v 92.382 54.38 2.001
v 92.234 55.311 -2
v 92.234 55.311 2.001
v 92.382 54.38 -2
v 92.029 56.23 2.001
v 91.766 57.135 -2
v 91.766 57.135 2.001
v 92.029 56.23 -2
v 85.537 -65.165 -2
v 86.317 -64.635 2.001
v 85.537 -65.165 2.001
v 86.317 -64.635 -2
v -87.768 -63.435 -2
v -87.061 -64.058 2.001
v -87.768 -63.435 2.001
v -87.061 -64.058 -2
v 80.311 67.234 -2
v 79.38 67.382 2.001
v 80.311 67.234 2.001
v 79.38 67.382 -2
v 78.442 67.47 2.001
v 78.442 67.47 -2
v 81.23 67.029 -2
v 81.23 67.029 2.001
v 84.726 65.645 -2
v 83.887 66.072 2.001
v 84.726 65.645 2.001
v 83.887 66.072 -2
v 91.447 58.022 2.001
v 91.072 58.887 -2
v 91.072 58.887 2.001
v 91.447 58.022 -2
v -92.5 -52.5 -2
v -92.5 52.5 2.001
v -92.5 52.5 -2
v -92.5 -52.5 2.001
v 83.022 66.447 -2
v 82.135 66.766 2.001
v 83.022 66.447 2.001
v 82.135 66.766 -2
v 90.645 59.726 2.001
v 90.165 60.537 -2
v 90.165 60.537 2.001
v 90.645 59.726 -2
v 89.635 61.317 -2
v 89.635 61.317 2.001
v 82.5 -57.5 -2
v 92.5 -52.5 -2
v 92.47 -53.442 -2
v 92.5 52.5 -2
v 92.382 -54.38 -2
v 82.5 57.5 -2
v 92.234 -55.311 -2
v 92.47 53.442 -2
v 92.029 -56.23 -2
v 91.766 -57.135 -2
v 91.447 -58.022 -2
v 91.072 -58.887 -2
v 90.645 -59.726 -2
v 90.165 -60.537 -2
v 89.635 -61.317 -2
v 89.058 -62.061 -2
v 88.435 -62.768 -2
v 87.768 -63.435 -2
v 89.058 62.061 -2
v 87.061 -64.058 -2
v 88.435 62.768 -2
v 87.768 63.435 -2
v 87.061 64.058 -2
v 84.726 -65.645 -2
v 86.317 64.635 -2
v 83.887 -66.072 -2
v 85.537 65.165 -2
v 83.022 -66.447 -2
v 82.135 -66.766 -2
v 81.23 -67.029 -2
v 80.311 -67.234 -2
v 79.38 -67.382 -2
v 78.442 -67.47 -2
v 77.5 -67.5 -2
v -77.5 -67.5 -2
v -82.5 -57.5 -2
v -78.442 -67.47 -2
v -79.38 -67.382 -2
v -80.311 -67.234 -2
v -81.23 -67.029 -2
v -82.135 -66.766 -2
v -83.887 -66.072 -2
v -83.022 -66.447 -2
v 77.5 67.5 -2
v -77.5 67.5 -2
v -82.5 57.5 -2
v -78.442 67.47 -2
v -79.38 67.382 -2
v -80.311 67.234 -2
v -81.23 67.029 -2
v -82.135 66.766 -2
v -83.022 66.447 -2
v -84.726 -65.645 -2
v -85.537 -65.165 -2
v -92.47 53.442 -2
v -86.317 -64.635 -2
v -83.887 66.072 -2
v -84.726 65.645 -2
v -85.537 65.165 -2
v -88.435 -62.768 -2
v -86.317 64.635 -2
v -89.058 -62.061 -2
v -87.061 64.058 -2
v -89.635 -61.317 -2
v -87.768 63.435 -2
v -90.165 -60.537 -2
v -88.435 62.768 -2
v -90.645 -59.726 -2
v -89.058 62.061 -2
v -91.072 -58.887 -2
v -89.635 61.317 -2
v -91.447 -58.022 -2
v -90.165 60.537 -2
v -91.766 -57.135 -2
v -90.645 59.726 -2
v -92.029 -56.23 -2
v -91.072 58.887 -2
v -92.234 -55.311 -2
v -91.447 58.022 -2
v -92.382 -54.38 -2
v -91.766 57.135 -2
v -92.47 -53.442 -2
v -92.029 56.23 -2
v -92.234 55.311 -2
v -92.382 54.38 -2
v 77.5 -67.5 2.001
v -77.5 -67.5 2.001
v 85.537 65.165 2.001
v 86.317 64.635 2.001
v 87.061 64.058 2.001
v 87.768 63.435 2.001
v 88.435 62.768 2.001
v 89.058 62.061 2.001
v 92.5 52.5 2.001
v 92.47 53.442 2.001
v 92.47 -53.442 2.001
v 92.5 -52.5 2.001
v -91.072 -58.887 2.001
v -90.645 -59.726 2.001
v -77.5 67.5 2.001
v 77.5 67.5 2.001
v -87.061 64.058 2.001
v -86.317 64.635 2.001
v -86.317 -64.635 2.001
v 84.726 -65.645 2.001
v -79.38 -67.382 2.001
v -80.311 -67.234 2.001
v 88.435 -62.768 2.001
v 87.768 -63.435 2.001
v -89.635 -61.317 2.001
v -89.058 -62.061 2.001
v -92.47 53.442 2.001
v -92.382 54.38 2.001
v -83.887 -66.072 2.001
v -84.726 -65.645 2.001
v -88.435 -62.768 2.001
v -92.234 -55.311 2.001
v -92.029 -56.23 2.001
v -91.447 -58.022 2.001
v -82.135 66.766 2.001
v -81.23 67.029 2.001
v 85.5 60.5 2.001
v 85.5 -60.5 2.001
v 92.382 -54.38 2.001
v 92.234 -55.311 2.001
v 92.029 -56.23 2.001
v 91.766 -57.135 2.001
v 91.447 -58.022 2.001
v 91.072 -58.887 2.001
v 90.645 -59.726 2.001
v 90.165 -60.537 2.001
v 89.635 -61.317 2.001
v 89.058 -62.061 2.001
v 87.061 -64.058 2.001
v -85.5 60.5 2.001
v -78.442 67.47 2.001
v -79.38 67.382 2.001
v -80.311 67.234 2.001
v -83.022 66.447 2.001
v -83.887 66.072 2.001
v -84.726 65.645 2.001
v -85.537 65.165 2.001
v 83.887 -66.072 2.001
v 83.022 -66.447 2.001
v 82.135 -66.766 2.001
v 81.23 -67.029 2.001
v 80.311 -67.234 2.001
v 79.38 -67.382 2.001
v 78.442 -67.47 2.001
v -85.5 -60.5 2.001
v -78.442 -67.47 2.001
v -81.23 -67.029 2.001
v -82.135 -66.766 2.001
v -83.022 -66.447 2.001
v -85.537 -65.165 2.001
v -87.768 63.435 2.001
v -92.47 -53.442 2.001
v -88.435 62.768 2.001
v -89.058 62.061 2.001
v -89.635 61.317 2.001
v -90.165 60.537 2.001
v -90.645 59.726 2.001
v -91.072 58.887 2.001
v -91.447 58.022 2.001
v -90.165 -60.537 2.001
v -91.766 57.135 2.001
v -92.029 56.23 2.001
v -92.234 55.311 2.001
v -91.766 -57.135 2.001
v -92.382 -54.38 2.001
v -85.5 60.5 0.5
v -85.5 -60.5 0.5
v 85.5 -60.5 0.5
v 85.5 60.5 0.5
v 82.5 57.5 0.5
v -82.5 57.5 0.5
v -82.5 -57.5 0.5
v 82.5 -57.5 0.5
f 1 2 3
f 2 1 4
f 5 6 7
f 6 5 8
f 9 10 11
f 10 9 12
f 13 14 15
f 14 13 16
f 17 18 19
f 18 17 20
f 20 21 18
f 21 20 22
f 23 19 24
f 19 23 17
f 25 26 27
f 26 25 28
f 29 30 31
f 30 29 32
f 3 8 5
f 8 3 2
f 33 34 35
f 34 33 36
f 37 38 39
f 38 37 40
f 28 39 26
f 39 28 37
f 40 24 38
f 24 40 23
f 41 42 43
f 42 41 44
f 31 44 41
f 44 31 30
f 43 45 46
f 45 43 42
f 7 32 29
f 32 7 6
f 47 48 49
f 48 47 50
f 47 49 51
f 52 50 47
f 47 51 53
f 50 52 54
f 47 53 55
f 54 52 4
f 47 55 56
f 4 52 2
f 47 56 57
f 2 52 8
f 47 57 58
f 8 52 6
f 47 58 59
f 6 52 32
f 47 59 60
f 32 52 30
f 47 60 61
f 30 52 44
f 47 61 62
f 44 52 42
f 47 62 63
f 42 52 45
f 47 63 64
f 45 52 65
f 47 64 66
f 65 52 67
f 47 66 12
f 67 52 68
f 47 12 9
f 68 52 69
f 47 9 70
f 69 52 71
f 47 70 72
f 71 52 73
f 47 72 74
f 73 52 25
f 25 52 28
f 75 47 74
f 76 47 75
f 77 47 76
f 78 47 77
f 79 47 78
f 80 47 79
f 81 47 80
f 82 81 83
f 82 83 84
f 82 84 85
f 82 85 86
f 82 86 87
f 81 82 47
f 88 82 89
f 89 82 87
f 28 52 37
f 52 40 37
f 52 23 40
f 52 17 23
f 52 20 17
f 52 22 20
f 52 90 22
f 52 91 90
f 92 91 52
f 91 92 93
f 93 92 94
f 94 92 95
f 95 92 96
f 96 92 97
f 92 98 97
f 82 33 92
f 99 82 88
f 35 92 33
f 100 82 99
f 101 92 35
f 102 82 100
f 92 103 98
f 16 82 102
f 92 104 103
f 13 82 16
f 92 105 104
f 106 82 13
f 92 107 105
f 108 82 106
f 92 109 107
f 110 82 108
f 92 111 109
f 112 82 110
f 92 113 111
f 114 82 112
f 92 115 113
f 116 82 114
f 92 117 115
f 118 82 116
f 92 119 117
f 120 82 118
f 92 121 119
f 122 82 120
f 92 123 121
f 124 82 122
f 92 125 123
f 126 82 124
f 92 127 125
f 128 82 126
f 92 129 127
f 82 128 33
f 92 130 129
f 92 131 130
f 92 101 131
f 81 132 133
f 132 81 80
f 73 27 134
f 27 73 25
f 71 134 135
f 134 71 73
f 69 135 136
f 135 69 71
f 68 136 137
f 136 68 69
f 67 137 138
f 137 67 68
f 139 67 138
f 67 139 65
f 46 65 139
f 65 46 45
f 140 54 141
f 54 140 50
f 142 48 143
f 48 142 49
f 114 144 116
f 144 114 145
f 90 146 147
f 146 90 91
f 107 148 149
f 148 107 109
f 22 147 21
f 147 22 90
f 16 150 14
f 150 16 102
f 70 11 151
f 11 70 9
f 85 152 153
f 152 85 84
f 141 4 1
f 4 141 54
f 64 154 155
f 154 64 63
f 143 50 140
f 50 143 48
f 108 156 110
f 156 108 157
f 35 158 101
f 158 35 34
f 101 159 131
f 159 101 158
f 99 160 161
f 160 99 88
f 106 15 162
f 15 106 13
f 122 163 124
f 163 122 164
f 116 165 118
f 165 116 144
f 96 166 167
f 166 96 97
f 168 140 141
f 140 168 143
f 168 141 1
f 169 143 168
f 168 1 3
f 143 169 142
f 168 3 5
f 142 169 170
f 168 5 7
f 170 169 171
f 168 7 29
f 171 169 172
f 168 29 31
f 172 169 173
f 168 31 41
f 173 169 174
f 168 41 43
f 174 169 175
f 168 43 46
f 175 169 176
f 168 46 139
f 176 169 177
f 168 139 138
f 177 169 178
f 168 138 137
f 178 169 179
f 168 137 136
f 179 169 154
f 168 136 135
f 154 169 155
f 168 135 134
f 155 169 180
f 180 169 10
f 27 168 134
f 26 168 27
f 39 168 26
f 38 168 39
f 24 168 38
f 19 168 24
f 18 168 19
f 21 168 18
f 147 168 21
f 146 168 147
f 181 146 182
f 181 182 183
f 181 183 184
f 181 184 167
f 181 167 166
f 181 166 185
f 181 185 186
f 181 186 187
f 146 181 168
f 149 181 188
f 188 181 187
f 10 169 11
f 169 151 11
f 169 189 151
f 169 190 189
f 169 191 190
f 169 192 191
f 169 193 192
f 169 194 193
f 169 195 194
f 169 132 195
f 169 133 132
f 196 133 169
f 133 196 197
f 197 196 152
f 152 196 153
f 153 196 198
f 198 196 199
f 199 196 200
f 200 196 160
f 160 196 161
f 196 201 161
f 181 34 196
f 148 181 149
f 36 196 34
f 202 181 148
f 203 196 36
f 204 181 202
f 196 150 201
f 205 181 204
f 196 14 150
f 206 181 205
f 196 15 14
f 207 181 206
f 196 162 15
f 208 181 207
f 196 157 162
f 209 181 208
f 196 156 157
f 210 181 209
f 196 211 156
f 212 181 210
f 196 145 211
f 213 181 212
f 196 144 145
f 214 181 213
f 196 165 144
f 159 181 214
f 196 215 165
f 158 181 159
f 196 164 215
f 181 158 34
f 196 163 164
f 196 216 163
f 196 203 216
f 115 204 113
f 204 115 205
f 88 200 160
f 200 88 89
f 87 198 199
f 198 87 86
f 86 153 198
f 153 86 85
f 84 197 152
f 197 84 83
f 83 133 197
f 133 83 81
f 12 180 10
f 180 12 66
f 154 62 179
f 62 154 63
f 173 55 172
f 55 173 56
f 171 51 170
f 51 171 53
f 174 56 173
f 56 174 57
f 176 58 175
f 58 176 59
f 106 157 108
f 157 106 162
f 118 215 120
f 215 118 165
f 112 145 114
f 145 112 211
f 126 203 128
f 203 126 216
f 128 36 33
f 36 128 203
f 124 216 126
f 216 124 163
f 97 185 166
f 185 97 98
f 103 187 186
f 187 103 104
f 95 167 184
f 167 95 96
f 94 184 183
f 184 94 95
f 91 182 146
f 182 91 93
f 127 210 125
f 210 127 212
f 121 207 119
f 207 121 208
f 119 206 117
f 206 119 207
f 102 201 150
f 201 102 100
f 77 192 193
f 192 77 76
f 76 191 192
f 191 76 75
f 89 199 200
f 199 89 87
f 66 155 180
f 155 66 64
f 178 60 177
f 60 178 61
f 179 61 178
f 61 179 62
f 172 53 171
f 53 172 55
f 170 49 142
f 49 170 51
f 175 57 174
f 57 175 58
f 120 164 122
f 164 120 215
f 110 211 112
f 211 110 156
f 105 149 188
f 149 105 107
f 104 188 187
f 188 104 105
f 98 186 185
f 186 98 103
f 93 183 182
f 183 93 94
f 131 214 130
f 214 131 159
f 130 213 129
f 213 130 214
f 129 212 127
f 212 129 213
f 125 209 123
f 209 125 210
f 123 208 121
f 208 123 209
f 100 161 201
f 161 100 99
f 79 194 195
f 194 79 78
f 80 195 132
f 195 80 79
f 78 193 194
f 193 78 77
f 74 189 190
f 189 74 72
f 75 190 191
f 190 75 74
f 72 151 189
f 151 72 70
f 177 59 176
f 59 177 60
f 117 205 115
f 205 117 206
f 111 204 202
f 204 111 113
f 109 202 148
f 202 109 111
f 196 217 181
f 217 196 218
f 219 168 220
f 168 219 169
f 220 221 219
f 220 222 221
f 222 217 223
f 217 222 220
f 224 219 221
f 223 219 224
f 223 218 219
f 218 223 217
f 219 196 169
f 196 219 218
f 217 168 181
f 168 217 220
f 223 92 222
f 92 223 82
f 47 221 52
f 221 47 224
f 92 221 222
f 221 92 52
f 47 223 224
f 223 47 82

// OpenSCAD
$fn=100;
width=4;

module mirror_fix() {
    
    difference() {
        minkowski() {
            cube([185-30,135-30,width], center=true);
            cylinder(d=30,h=0.001);
        }
        
        translate([0,0,width-1.5])
            cube([171,121,width], center=true);
        
        cube([171-6,121-6,width*2], center=true);
    }    
}

mirror_fix();
